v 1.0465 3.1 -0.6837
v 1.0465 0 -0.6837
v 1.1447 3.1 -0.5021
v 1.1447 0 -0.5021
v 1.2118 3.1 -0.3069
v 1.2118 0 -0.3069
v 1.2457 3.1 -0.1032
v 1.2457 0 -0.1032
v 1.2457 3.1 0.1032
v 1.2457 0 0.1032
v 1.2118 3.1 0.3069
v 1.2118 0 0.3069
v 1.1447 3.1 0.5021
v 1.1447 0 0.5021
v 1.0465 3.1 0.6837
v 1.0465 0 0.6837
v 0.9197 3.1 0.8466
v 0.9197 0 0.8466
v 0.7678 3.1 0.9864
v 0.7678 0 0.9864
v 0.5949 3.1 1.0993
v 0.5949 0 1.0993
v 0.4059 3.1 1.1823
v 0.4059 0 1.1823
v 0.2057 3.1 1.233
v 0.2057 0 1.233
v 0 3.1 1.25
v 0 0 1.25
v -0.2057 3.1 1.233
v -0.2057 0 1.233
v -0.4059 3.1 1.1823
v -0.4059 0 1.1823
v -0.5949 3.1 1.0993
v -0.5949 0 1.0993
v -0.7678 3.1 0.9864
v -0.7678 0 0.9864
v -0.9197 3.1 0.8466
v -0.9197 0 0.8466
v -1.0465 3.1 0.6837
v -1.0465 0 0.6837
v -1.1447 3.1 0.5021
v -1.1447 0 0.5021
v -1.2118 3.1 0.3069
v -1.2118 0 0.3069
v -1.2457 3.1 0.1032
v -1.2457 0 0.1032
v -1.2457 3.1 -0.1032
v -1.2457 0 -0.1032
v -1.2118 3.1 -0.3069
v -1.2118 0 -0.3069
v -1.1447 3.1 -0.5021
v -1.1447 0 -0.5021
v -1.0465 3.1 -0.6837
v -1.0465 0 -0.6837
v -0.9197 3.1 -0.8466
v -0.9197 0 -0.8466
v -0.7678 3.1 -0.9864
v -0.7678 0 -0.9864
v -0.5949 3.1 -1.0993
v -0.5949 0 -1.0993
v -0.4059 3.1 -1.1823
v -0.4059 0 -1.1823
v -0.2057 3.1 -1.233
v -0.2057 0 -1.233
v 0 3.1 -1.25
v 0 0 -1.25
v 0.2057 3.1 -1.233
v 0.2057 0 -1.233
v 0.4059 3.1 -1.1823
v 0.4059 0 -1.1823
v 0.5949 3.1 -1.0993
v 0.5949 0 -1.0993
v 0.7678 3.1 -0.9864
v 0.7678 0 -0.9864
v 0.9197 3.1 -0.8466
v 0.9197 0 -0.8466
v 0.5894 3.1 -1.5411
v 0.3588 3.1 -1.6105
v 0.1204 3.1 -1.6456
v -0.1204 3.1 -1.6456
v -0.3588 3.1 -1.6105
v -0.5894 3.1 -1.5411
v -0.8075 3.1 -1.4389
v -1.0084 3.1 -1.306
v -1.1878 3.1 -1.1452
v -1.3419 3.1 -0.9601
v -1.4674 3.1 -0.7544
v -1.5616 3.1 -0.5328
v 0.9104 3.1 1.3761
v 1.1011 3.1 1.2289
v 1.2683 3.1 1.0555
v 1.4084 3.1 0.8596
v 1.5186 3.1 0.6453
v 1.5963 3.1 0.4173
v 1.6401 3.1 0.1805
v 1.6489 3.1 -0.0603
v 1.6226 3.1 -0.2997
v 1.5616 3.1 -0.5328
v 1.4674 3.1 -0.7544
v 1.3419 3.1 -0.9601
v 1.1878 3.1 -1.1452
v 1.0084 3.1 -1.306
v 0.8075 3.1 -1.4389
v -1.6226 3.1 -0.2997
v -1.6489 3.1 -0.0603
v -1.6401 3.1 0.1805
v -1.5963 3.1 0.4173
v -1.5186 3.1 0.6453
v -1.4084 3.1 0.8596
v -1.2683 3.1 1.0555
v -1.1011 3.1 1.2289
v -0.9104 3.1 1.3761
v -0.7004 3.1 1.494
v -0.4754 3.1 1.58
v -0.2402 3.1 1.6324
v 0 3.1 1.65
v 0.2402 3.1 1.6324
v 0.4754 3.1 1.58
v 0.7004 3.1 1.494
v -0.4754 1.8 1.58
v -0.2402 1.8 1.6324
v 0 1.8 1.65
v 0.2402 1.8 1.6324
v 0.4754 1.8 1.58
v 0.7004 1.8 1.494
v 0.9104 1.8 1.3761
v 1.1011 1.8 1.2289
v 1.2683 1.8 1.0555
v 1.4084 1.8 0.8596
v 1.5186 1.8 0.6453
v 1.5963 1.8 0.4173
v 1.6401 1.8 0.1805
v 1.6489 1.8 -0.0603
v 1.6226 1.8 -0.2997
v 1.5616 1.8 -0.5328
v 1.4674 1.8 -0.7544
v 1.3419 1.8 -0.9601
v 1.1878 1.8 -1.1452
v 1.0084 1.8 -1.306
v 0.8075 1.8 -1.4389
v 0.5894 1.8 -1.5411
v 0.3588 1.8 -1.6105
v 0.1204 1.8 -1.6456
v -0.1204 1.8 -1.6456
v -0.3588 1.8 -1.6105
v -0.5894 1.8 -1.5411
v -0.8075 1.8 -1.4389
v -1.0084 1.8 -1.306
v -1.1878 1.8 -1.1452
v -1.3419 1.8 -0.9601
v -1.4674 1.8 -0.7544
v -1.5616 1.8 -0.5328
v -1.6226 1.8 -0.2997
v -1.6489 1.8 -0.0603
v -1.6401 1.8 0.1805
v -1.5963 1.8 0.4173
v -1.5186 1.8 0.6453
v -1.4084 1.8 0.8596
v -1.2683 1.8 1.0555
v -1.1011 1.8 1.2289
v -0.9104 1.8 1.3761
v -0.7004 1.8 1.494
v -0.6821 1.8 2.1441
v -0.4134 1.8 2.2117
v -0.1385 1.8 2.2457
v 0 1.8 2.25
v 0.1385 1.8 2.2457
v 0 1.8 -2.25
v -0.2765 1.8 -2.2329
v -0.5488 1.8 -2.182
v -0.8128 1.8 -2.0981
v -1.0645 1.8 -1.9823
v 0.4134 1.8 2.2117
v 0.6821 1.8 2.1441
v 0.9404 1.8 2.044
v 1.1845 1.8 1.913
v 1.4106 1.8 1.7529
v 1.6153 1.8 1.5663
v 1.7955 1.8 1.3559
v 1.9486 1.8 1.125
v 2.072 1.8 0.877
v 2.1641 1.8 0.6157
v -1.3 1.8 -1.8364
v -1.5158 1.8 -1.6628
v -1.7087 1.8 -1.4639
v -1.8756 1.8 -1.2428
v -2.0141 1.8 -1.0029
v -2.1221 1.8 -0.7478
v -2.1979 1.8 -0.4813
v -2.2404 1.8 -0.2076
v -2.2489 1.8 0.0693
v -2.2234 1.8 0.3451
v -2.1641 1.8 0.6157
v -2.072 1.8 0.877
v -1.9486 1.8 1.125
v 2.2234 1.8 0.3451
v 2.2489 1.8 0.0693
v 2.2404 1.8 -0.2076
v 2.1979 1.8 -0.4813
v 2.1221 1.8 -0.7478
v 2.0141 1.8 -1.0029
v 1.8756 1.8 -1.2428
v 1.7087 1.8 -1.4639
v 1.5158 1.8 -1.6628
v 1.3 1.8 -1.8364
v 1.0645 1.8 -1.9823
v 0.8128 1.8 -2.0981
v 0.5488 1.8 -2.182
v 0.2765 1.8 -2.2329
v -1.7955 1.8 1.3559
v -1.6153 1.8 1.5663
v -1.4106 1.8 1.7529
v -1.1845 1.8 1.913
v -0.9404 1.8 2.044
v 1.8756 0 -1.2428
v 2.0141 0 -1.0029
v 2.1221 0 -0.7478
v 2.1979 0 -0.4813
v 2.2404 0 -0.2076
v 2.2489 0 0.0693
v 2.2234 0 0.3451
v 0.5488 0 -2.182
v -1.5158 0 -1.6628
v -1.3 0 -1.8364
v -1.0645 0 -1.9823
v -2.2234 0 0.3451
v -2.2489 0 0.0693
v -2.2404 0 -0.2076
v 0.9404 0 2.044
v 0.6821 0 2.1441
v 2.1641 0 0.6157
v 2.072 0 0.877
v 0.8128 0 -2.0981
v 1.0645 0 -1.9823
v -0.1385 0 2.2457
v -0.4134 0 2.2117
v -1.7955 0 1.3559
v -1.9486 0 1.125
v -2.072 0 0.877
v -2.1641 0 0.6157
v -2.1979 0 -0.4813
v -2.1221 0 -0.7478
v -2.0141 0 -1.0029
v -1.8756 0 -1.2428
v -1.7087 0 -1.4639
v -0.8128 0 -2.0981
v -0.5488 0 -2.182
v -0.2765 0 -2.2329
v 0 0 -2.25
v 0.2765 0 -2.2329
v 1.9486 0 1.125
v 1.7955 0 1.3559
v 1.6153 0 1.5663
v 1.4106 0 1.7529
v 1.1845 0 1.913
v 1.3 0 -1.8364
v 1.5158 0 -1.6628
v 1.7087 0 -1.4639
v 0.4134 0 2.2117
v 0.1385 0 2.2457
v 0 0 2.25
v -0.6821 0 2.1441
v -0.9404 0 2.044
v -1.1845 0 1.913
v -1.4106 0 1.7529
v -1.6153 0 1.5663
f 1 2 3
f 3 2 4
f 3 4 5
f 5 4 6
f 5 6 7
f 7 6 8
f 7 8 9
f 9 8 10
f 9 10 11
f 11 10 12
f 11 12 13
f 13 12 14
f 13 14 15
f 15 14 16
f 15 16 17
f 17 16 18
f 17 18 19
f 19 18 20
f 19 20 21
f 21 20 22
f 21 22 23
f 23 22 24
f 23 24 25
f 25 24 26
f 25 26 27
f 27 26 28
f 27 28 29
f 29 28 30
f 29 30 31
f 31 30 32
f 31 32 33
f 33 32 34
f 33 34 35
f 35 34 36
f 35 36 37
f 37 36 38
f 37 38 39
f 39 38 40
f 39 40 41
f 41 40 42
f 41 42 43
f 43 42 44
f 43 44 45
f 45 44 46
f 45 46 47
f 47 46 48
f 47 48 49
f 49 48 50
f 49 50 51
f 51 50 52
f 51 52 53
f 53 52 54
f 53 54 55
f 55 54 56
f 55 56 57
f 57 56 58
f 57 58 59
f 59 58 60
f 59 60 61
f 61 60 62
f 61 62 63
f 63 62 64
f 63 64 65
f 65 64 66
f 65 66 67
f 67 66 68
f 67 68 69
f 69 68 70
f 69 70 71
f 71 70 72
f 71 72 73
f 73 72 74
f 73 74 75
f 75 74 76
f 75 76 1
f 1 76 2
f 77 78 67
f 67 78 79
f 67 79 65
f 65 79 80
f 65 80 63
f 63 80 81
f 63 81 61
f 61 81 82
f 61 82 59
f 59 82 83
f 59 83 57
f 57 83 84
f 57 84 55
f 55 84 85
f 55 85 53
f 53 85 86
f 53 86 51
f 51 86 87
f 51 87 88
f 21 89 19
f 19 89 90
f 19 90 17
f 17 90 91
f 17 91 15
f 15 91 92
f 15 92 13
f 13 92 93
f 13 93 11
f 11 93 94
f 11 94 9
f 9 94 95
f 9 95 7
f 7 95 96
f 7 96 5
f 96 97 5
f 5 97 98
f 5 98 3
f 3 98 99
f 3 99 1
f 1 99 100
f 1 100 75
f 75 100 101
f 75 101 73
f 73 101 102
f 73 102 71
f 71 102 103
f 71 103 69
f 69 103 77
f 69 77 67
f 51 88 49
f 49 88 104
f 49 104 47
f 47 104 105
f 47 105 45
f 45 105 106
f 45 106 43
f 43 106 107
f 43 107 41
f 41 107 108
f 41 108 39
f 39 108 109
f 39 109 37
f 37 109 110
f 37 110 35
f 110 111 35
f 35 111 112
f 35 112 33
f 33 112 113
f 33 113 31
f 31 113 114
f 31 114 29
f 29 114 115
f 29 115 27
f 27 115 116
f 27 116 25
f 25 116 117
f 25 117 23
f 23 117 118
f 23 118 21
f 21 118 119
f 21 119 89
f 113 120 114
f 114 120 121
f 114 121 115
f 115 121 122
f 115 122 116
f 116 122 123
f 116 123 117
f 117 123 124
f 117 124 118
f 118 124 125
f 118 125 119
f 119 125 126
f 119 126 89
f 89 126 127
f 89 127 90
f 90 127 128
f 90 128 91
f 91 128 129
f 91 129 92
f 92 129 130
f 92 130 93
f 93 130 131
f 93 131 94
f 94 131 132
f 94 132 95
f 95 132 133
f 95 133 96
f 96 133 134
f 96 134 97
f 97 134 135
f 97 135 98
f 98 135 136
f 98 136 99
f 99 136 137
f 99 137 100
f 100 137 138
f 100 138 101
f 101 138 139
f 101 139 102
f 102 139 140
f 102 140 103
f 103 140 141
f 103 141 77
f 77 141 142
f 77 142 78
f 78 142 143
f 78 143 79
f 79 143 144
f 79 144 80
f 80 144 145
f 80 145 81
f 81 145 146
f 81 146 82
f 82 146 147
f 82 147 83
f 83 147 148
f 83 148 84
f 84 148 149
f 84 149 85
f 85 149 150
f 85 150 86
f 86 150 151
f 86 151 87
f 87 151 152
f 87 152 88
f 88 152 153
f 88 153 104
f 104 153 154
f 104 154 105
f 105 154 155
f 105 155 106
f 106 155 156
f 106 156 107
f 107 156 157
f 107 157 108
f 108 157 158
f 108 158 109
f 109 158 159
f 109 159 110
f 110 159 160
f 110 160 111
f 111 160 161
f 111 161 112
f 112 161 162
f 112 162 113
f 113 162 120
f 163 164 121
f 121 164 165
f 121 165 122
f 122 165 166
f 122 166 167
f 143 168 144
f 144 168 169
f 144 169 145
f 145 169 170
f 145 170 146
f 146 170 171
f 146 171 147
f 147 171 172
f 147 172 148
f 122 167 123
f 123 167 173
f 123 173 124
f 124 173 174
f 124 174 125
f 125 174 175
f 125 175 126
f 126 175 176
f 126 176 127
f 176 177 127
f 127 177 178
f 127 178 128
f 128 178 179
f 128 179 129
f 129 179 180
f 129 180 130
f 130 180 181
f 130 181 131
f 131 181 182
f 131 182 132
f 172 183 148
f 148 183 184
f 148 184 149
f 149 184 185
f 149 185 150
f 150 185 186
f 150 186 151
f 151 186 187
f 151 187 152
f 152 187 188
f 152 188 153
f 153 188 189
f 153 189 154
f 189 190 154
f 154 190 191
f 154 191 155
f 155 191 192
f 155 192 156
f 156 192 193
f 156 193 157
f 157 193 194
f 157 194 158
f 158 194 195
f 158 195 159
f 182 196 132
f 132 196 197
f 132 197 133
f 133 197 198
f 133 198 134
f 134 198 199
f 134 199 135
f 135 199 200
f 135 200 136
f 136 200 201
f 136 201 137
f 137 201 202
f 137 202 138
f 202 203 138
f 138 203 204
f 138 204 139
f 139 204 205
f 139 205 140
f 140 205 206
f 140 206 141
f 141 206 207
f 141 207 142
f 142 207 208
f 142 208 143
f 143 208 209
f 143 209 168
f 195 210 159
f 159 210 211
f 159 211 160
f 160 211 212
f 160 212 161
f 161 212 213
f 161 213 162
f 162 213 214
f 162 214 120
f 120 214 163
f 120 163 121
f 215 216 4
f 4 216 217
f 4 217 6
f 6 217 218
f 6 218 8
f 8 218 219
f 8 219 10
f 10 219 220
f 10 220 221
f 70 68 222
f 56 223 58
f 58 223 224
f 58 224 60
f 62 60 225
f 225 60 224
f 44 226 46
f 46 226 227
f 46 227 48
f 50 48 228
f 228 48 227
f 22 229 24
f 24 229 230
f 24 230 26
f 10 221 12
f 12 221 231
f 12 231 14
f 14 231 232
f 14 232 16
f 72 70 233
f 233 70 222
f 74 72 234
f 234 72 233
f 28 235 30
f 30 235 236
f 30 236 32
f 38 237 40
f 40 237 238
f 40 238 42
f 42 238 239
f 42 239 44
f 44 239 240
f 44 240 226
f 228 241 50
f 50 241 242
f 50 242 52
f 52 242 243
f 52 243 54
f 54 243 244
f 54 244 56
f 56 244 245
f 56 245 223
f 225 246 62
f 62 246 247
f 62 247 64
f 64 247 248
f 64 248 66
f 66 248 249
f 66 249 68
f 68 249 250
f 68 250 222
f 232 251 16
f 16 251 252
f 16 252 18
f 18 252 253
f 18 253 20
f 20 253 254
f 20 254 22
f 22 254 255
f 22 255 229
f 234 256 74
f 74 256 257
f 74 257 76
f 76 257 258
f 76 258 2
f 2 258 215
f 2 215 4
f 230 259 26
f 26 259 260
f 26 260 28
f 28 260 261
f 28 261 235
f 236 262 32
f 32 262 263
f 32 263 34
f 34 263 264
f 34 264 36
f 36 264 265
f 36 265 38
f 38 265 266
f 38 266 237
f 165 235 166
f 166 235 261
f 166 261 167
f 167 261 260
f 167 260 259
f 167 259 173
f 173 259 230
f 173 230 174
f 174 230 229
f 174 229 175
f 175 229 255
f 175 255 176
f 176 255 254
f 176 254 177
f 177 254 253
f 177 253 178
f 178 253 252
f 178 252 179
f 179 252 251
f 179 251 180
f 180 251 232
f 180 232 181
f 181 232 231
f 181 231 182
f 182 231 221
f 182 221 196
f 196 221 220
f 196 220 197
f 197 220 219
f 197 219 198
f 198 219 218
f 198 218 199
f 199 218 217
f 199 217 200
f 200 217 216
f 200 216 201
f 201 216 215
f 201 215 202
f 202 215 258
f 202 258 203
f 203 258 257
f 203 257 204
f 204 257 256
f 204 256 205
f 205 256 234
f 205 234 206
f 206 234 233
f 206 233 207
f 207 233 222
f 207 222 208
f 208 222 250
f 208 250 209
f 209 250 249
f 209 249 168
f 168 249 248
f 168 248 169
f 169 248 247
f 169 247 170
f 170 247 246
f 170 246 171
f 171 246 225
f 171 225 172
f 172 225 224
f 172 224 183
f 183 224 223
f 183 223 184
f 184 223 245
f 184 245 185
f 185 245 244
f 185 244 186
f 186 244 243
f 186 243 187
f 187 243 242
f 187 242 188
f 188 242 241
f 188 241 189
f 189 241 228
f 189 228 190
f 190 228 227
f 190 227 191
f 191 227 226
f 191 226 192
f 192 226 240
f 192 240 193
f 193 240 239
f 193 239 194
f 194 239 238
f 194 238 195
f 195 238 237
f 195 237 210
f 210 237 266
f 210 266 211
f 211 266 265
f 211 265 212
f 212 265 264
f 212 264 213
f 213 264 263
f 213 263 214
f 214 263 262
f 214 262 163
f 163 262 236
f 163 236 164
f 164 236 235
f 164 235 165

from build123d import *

# Parameters (mm, degrees)
SKETCH1_R           = 2.25
BOSS_EXTRUDE1_DEPTH = 3.1
SKETCH2_OUTSIDE_W   = 7.916
SKETCH2_OUTSIDE_H   = 7.916
SKETCH2_OUTSIDE_R   = 1.65
CUT_EXTRUDE1_DEPTH  = 1.3
SKETCH3_R           = 1.25
CUT_EXTRUDE2_DEPTH  = 4.1


with BuildPart() as part:
    # Sketch1 → Boss-Extrude1 (new body)
    with BuildSketch(Plane(origin=(0, 0, 0), x_dir=(1, 0, 0), z_dir=(0, 1, 0))):
        Circle(SKETCH1_R)
    extrude(amount=BOSS_EXTRUDE1_DEPTH)

    # Sketch2 outside → Cut-Extrude1 (cut)
    with BuildSketch(Plane(origin=(0, 3.1, 0), x_dir=(1, 0, 0), z_dir=(0, 1, 0))):
        Rectangle(SKETCH2_OUTSIDE_W, SKETCH2_OUTSIDE_H)
        Circle(SKETCH2_OUTSIDE_R, mode=Mode.SUBTRACT)
    extrude(amount=-CUT_EXTRUDE1_DEPTH, mode=Mode.SUBTRACT)

    # Sketch3 → Cut-Extrude2 (cut, through all)
    with BuildSketch(Plane(origin=(0, 3.1, 0), x_dir=(1, 0, 0), z_dir=(0, 1, 0))):
        Circle(SKETCH3_R)
    extrude(amount=-CUT_EXTRUDE2_DEPTH, mode=Mode.SUBTRACT)


solid = part.part
